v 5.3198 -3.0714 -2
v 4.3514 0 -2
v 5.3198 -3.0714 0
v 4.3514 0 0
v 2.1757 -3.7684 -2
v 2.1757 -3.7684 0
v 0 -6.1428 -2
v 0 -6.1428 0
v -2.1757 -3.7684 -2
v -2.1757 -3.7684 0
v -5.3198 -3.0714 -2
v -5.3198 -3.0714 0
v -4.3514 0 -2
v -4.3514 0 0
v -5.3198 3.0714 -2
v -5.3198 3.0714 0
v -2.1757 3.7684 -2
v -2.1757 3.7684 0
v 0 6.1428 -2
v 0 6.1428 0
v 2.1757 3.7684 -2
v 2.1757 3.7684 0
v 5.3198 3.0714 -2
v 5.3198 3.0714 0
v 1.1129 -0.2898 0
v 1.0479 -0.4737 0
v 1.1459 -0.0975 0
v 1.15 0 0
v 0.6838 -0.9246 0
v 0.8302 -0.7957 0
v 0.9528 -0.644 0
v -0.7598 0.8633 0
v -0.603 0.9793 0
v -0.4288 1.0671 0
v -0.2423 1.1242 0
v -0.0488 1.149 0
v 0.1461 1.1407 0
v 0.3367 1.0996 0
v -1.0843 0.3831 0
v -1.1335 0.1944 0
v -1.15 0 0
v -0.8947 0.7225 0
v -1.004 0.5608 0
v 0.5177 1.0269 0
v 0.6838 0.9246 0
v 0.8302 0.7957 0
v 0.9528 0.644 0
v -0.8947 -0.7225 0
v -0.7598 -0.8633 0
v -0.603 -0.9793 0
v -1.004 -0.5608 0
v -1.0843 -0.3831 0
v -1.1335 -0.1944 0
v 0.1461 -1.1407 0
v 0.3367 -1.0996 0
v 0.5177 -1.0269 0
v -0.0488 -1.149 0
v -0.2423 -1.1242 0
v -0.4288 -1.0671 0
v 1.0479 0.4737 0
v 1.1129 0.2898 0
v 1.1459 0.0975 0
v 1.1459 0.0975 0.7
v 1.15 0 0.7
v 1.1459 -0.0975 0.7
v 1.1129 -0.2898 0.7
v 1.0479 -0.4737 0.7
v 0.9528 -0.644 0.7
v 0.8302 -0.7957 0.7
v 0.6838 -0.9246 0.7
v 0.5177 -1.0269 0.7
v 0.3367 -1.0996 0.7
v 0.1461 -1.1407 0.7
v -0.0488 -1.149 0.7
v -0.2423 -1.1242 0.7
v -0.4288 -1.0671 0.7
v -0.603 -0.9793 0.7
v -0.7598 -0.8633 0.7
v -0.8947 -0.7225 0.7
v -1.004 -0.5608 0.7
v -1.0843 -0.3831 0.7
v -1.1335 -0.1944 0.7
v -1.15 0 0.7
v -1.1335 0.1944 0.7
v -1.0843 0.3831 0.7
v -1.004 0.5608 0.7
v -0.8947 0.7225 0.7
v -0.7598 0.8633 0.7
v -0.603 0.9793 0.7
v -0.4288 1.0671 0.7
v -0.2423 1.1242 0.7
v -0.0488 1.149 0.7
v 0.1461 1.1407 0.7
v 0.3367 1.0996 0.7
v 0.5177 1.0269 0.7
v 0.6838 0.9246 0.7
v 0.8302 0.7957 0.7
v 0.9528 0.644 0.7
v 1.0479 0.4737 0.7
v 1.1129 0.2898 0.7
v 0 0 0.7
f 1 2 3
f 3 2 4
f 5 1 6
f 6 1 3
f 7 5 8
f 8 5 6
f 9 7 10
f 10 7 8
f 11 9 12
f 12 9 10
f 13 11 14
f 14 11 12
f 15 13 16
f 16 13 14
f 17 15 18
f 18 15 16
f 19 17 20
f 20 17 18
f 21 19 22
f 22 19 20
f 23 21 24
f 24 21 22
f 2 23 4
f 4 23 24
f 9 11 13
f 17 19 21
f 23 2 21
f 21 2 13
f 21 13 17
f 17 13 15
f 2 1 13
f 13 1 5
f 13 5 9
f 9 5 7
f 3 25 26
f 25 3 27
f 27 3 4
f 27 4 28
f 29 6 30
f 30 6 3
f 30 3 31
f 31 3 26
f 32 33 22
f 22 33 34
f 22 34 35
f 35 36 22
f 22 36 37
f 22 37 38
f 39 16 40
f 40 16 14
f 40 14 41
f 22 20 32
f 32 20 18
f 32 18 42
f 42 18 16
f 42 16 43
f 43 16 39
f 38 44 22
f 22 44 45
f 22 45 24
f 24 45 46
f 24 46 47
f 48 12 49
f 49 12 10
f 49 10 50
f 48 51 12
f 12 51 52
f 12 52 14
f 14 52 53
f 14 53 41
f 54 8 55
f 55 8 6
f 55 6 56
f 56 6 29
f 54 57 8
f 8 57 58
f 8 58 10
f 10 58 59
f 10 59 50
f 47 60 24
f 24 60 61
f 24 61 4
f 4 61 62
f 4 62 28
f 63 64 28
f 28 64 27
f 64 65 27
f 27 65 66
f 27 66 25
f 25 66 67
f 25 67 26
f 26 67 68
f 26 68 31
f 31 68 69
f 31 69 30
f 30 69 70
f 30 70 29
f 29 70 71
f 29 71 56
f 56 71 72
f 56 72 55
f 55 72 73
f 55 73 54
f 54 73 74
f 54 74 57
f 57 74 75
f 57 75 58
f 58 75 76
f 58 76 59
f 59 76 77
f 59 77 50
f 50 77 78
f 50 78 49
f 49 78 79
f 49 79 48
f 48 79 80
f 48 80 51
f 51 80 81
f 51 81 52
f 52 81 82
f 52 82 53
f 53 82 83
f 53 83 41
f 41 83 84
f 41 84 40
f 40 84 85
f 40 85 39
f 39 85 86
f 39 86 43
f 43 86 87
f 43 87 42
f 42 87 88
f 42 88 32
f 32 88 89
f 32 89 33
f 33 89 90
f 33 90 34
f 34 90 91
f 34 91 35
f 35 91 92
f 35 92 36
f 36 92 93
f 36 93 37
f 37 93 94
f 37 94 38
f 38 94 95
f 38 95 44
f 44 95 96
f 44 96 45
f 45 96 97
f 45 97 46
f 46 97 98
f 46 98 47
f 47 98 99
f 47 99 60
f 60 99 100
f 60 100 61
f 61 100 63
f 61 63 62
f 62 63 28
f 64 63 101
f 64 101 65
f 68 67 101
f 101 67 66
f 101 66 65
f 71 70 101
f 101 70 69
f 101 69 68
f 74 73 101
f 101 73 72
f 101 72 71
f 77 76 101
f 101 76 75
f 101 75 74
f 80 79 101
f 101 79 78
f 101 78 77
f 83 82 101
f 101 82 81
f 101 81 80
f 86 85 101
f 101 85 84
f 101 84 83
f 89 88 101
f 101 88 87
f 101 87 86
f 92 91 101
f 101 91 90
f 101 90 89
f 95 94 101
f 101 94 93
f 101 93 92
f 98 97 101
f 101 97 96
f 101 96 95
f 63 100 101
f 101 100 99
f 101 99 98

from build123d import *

# Parameters (mm, degrees)
BOSS_EXTRUDE1_DEPTH = 2
SKETCH1_4_R         = 1.15
BOSS_EXTRUDE2_DEPTH = 0.7


with BuildPart() as part:
    # Sketch1 → Boss-Extrude1 (new body)
    with BuildSketch(Plane.XY):
        Polygon((2.175697935, 3.768419365), (0, 6.142777017), (-2.175697935, 3.768419365), (-5.319800946, 3.071388508), (-4.351395869, 0), (-5.319800946, -3.071388508), (-2.175697935, -3.768419365), (0, -6.142777017), (2.175697935, -3.768419365), (5.319800946, -3.071388508), (4.351395869, 0), (5.319800946, 3.071388508), align=None)
    extrude(amount=-BOSS_EXTRUDE1_DEPTH)

    # Sketch1<4> → Boss-Extrude2 (add)
    with BuildSketch(Plane.XY):
        Circle(SKETCH1_4_R)
    extrude(amount=BOSS_EXTRUDE2_DEPTH)


solid = part.part
